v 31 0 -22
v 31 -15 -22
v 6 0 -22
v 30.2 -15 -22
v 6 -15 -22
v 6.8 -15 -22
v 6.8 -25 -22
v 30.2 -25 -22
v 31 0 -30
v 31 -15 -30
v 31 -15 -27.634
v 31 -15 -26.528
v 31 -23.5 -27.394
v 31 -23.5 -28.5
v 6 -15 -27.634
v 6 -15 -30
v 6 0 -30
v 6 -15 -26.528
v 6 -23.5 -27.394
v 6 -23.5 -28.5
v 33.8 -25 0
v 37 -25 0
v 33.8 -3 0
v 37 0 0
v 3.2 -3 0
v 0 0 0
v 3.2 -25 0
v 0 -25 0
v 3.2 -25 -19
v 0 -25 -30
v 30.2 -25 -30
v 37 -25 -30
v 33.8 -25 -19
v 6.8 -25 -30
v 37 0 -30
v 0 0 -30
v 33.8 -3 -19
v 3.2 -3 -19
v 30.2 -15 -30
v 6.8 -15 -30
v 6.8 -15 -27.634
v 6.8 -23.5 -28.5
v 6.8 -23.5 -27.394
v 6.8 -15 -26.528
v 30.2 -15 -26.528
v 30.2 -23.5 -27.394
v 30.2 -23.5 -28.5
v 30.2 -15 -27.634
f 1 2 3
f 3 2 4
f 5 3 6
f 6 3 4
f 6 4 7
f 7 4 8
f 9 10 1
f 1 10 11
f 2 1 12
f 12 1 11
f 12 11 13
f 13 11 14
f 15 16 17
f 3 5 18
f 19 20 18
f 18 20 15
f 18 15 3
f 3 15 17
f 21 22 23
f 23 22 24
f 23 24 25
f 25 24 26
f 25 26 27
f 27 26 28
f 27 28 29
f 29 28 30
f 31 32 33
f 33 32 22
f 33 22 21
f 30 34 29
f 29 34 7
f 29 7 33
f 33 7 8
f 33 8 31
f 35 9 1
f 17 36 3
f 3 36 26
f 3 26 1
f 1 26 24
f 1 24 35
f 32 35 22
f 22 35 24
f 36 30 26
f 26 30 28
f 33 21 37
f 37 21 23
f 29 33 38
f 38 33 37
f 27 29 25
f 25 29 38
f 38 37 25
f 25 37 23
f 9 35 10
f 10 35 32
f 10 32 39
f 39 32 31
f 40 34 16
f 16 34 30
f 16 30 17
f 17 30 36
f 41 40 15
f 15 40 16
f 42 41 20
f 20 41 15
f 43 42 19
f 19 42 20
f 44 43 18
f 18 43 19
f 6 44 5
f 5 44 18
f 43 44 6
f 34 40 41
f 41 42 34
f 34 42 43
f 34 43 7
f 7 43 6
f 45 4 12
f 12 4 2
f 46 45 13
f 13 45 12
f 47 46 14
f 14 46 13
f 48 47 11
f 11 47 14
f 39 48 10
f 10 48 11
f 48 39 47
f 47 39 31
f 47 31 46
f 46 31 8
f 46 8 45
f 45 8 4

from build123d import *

# Parameters (mm, degrees)
SKETCH1_W           = 25
SKETCH1_H           = 25
BOSS_EXTRUDE1_DEPTH = 37
SKETCH2_W           = 30.6
SKETCH2_H           = 19
CUT_EXTRUDE1_DEPTH  = 22
SKETCH3_W           = 25
SKETCH3_H           = 25
CUT_EXTRUDE2_DEPTH  = 3
SKETCH4_W           = 6
SKETCH4_H           = 25
BOSS_EXTRUDE2_DEPTH = 5
BOSS_EXTRUDE3_DEPTH = 0.8
BOSS_EXTRUDE4_DEPTH = 0.8


with BuildPart() as part:
    # Sketch1 → Boss-Extrude1 (new body)
    with BuildSketch(Plane(origin=(0, 0, 0), x_dir=(0, 0, -1), z_dir=(1, 0, 0))):
        with Locations((12.5, -12.5)):
            Rectangle(SKETCH1_W, SKETCH1_H)
    extrude(amount=BOSS_EXTRUDE1_DEPTH)

    # Sketch2 → Cut-Extrude1 (cut)
    with BuildSketch(Plane.XZ.offset(25)):
        with Locations((18.5, -9.5)):
            Rectangle(SKETCH2_W, SKETCH2_H)
    extrude(amount=-CUT_EXTRUDE1_DEPTH, mode=Mode.SUBTRACT)

    # Sketch3 → Cut-Extrude2 (cut)
    with BuildSketch(Plane(origin=(0, 0, -25), x_dir=(-1, 0, 0), z_dir=(0, 0, -1))):
        with Locations((-18.5, -12.5)):
            Rectangle(SKETCH3_W, SKETCH3_H)
    extrude(amount=-CUT_EXTRUDE2_DEPTH, mode=Mode.SUBTRACT)

    # Sketch4 → Boss-Extrude2 (add)
    with BuildSketch(Plane(origin=(0, 0, -25), x_dir=(-1, 0, 0), z_dir=(0, 0, -1))):
        with Locations((-34, -12.5)):
            Rectangle(SKETCH4_W, SKETCH4_H)
        with Locations((-3, -12.5)):
            Rectangle(SKETCH4_W, SKETCH4_H)
    extrude(amount=BOSS_EXTRUDE2_DEPTH)

    # Sketch5 → Boss-Extrude3 (add)
    with BuildSketch(Plane(origin=(6, 0, 0), x_dir=(0, 0, -1), z_dir=(1, 0, 0))):
        Polygon((30, -15), (27.633974643, -15), (28.5, -23.5), (27.394305398, -23.5), (26.528280041, -15), (22, -15), (22, -25), (30, -25), align=None)
    extrude(amount=BOSS_EXTRUDE3_DEPTH)

    # Sketch6 → Boss-Extrude4 (add)
    with BuildSketch(Plane.ZY.offset(-31)):
        Polygon((-30, -15), (-30, -25), (-22, -25), (-22, -15), (-26.528280041, -15), (-27.394305398, -23.5), (-28.5, -23.5), (-27.633974643, -15), align=None)
    extrude(amount=BOSS_EXTRUDE4_DEPTH)


solid = part.part
